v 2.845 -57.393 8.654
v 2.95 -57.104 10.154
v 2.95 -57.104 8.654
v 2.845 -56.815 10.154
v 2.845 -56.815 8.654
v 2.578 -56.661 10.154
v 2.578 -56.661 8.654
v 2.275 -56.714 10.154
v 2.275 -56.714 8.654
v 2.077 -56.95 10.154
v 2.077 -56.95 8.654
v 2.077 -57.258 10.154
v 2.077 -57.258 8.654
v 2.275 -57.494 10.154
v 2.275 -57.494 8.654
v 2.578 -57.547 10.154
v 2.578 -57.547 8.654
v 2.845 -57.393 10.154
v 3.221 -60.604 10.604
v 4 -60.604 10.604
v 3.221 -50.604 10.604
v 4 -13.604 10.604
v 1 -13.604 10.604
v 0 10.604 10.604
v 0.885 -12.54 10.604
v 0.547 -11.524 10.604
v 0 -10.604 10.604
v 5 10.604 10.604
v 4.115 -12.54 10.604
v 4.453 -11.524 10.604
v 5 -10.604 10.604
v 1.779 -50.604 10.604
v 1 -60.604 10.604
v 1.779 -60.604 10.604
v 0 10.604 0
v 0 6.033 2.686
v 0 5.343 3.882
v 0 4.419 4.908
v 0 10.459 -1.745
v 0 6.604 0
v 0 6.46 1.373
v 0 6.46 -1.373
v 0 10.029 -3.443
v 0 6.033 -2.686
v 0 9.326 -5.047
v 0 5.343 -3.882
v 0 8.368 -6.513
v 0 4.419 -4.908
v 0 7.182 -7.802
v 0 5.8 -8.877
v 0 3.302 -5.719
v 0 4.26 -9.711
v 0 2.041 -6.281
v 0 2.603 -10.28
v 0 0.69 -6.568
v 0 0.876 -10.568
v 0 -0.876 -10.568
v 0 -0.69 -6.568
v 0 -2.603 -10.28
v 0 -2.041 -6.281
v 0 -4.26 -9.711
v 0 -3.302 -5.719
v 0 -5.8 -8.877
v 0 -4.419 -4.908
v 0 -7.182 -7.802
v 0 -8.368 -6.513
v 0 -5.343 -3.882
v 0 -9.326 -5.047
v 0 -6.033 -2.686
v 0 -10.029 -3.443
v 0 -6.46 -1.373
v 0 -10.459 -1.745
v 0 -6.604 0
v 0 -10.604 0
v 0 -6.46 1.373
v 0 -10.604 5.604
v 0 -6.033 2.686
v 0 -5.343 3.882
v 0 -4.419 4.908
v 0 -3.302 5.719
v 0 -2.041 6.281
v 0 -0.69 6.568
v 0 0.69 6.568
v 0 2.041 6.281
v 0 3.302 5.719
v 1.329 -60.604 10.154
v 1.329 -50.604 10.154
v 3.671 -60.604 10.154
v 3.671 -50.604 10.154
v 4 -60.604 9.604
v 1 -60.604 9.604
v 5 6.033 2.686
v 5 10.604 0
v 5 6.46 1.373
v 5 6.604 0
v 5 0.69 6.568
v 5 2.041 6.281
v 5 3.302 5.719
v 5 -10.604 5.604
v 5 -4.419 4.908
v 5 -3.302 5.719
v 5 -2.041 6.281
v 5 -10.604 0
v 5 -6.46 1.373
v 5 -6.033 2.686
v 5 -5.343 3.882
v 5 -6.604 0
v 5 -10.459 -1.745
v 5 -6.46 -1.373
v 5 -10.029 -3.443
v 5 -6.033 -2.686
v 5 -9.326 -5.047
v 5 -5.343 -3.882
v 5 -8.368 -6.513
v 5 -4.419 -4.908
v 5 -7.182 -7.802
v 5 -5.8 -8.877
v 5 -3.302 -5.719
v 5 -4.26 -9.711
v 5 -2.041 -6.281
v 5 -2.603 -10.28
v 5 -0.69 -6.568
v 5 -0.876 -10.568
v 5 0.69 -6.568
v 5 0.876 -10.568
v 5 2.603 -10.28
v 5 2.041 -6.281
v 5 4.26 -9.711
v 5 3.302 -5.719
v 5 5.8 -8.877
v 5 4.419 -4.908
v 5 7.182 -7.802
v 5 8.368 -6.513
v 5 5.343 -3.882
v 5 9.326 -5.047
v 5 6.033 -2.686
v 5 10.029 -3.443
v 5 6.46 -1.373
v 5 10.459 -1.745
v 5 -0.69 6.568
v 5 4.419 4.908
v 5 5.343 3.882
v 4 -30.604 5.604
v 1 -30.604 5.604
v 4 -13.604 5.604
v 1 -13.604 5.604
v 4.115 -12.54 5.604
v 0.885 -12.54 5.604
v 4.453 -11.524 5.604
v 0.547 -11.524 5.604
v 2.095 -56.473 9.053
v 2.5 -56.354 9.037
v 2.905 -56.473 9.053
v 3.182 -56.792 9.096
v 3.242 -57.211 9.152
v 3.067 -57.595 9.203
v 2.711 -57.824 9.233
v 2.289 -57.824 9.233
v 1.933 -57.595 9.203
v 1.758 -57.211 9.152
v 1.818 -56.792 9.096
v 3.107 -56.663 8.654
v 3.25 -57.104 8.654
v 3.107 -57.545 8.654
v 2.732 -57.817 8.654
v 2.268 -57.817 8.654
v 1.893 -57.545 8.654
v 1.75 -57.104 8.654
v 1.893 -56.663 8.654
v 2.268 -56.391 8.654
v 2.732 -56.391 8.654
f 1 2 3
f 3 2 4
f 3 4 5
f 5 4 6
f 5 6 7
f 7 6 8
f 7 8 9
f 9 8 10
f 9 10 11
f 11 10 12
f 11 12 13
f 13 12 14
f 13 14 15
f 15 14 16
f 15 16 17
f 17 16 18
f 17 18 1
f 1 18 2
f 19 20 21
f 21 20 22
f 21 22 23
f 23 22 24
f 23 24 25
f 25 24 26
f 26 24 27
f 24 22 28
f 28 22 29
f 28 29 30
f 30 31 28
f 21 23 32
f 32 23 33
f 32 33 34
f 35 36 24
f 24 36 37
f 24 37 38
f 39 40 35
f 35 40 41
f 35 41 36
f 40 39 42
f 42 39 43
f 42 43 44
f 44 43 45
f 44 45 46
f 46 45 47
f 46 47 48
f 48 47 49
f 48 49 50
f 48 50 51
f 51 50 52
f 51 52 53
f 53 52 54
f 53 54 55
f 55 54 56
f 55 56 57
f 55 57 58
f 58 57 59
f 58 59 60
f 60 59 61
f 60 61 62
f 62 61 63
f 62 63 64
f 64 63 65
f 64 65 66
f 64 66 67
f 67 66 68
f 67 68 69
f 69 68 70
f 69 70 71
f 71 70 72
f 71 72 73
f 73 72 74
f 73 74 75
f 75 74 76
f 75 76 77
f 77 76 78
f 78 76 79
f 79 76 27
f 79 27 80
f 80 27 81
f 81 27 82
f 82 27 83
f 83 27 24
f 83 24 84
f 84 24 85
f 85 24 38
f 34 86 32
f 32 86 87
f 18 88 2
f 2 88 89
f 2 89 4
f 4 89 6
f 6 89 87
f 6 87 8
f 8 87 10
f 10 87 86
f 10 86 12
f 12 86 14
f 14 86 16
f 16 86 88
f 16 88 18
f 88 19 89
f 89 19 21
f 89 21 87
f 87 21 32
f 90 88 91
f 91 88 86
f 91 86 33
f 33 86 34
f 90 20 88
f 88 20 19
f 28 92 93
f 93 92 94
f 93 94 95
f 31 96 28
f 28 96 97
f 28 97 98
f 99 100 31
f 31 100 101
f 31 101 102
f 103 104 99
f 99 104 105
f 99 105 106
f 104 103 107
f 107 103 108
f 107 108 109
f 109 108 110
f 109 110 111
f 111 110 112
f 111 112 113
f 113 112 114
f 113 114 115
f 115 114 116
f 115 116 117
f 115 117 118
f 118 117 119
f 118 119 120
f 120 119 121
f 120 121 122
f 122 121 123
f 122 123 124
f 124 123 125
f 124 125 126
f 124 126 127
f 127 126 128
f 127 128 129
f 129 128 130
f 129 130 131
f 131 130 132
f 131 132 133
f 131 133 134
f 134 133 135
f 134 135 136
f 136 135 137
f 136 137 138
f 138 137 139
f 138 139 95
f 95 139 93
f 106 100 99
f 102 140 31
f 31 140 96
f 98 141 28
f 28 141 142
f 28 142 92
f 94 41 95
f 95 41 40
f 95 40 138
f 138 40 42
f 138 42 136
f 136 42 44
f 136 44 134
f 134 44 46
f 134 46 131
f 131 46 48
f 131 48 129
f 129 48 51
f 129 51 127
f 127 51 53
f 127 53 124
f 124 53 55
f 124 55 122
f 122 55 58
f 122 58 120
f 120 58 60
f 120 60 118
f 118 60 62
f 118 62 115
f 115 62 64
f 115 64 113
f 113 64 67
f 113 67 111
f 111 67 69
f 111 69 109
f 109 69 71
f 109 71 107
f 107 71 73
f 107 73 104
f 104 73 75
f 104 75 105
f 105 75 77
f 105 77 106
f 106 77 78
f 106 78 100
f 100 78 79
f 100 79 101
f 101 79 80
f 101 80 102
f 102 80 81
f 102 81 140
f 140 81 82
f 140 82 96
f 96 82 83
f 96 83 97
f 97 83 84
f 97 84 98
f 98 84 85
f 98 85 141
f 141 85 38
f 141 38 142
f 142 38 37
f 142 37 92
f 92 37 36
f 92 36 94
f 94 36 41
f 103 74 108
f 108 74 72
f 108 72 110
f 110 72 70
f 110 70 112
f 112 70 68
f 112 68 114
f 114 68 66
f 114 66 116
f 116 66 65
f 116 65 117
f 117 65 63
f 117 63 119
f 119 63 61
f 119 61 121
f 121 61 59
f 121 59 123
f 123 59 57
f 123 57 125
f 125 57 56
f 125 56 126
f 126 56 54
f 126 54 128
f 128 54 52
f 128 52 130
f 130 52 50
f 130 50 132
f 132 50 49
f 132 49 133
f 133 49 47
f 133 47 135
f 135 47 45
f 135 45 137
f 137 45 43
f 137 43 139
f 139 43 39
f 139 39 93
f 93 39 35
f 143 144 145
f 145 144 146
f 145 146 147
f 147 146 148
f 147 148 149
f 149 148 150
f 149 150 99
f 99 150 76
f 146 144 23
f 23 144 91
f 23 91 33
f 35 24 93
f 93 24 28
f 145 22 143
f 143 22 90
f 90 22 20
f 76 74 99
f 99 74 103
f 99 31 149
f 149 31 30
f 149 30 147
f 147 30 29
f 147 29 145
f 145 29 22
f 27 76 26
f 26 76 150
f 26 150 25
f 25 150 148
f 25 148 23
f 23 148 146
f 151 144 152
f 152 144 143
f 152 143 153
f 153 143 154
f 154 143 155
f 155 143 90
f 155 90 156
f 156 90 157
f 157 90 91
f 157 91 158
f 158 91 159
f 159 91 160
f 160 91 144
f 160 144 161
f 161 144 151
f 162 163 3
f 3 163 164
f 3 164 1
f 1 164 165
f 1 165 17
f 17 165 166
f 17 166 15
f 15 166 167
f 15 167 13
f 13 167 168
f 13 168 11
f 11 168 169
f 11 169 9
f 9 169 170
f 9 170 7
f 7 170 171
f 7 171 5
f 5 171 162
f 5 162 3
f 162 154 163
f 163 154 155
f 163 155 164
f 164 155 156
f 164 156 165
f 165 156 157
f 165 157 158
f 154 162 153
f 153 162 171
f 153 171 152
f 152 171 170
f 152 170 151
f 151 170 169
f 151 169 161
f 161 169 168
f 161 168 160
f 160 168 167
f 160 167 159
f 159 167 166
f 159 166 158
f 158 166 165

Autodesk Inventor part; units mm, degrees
ref_plane "YZ Plane" through (0, 0, 0) normal (1, 0, 0) x (0, 1, 0)
ref_plane "XZ Plane" through (0, 0, 0) normal (0, 1, 0) x (-1, 0, 0)
ref_plane "XY Plane" through (0, 0, 0) normal (0, 0, 1) x (1, 0, 0)
sketch "Sketch1" plane through (0, 0, 0) normal (1, 0, 0) x (0, 1, 0)
  circle A0 centre (0, 0) radius 6.604
  circle A1 centre (0, 0) radius 10.604
  line L0 (10.604, 0) -> (-10.604, 0)
  line L1 (-10.604, 0) -> (-10.604, 10.604)
  line L2 (-10.604, 10.604) -> (10.604, 10.604)
  line L3 (10.604, 10.604) -> (10.604, 0)
  point P0 (-10.604, 0)
  dimension "d1" = 21.208
  dimension "d0" = 13.208
extrude "Extrusion1" add sketch "Sketch1" along normal blind 5 contours L0 A1 A0 | A0 L0 A1 | A1 L2 L3 | L1 L2 A1
sketch "Sketch2" plane through (0, -10.604, 0) normal (0, -1, 0) x (1, 0, 0)
  line L0 (0, 0) -> (0, 10.604) projected
  line L1 (5, 0) -> (5, 10.604) projected
  line L2 (1, 10.604) -> (4, 10.604)
  line L3 (4, 10.604) -> (4, 5.604)
  line L4 (4, 5.604) -> (1, 5.604)
  line L5 (1, 5.604) -> (1, 10.604)
  line L6 (0, 10.604) -> (5, 10.604) projected
  dimension "d16" = 1
  dimension "d17" = 1
  dimension "d18" = 5
extrude "Extrusion2" add sketch "Sketch2" along normal blind 50
sketch "Sketch3" plane through (0, -60.604, 0) normal (0, -1, 0) x (1, 0, 0)
  line L0 (1.329, 10.154) -> (3.671, 10.154)
  line L1 (1.329, 10.154) -> (1.779, 10.604)
  line L2 (3.671, 10.154) -> (3.221, 10.604)
  line L3 (1.329, 10.154) -> (1.658, 10.154) construction
  line L4 (3.671, 10.154) -> (4, 10.154) construction
  line L5 (4, 10.604) -> (1, 10.604) projected
  line L6 (1.329, 10.154) -> (1, 10.154) construction
  line L7 (1, 10.604) -> (1, 5.604) construction
  line L8 (4, 5.604) -> (4, 10.604) construction
  point P0 (0, 0)
  dimension "d6" = 2.342
  dimension "d7" = 45
  dimension "d8" = 45
  dimension "d19" = 0.45
extrude "Extrusion3" cut sketch "Sketch3" against normal blind 10
chamfer "Chamfer1" distance 4 distance2 30 1 edges at (2.5, -60.604, 5.604) measured on face at (2.8903, -60.604, 7.1207)
fillet "Fillet1" radius 5 2 edges at (4, -10.604, 8.104) (1, -10.604, 8.104)
sketch "Sketch4" plane through (1.329, -60.604, 10.154) normal (0, 0, 1) x (1, 0, 0)
  circle A0 centre (1.171, 3.5) radius 0.45
  line L0 (1.171, 3.5) -> (2.671, 3.5) construction
  line L1 (1.171, 3.5) -> (-0.329, 3.5)
  line L2 (-0.329, 47) -> (-0.329, 0) construction
  line L3 (2.671, 47) -> (2.671, 0) construction
  line L4 (2.342, 0) -> (0, 0) construction
  point P0 (-1.329, 60.604)
  dimension "d21" = 0.9
  dimension "d22" = 3.5
extrude "Extrusion4" cut sketch "Sketch4" against normal blind 10
sketch "Sketch5" plane through (1.329, -60.604, 10.154) normal (0, 0, 1) x (1, 0, 0)
  circle A0 centre (1.171, 3.5) radius 0.45 projected
  circle A1 centre (1.171, 3.5) radius 0.75
  point P0 (-1.329, 60.604)
  dimension "d25" = 1.5
extrude "Extrusion5" add sketch "Sketch5" against normal blind 1.5
equation "\"d17\" = d16"
equation "\"d8\" = d7"
properties part number "washing_arm"
